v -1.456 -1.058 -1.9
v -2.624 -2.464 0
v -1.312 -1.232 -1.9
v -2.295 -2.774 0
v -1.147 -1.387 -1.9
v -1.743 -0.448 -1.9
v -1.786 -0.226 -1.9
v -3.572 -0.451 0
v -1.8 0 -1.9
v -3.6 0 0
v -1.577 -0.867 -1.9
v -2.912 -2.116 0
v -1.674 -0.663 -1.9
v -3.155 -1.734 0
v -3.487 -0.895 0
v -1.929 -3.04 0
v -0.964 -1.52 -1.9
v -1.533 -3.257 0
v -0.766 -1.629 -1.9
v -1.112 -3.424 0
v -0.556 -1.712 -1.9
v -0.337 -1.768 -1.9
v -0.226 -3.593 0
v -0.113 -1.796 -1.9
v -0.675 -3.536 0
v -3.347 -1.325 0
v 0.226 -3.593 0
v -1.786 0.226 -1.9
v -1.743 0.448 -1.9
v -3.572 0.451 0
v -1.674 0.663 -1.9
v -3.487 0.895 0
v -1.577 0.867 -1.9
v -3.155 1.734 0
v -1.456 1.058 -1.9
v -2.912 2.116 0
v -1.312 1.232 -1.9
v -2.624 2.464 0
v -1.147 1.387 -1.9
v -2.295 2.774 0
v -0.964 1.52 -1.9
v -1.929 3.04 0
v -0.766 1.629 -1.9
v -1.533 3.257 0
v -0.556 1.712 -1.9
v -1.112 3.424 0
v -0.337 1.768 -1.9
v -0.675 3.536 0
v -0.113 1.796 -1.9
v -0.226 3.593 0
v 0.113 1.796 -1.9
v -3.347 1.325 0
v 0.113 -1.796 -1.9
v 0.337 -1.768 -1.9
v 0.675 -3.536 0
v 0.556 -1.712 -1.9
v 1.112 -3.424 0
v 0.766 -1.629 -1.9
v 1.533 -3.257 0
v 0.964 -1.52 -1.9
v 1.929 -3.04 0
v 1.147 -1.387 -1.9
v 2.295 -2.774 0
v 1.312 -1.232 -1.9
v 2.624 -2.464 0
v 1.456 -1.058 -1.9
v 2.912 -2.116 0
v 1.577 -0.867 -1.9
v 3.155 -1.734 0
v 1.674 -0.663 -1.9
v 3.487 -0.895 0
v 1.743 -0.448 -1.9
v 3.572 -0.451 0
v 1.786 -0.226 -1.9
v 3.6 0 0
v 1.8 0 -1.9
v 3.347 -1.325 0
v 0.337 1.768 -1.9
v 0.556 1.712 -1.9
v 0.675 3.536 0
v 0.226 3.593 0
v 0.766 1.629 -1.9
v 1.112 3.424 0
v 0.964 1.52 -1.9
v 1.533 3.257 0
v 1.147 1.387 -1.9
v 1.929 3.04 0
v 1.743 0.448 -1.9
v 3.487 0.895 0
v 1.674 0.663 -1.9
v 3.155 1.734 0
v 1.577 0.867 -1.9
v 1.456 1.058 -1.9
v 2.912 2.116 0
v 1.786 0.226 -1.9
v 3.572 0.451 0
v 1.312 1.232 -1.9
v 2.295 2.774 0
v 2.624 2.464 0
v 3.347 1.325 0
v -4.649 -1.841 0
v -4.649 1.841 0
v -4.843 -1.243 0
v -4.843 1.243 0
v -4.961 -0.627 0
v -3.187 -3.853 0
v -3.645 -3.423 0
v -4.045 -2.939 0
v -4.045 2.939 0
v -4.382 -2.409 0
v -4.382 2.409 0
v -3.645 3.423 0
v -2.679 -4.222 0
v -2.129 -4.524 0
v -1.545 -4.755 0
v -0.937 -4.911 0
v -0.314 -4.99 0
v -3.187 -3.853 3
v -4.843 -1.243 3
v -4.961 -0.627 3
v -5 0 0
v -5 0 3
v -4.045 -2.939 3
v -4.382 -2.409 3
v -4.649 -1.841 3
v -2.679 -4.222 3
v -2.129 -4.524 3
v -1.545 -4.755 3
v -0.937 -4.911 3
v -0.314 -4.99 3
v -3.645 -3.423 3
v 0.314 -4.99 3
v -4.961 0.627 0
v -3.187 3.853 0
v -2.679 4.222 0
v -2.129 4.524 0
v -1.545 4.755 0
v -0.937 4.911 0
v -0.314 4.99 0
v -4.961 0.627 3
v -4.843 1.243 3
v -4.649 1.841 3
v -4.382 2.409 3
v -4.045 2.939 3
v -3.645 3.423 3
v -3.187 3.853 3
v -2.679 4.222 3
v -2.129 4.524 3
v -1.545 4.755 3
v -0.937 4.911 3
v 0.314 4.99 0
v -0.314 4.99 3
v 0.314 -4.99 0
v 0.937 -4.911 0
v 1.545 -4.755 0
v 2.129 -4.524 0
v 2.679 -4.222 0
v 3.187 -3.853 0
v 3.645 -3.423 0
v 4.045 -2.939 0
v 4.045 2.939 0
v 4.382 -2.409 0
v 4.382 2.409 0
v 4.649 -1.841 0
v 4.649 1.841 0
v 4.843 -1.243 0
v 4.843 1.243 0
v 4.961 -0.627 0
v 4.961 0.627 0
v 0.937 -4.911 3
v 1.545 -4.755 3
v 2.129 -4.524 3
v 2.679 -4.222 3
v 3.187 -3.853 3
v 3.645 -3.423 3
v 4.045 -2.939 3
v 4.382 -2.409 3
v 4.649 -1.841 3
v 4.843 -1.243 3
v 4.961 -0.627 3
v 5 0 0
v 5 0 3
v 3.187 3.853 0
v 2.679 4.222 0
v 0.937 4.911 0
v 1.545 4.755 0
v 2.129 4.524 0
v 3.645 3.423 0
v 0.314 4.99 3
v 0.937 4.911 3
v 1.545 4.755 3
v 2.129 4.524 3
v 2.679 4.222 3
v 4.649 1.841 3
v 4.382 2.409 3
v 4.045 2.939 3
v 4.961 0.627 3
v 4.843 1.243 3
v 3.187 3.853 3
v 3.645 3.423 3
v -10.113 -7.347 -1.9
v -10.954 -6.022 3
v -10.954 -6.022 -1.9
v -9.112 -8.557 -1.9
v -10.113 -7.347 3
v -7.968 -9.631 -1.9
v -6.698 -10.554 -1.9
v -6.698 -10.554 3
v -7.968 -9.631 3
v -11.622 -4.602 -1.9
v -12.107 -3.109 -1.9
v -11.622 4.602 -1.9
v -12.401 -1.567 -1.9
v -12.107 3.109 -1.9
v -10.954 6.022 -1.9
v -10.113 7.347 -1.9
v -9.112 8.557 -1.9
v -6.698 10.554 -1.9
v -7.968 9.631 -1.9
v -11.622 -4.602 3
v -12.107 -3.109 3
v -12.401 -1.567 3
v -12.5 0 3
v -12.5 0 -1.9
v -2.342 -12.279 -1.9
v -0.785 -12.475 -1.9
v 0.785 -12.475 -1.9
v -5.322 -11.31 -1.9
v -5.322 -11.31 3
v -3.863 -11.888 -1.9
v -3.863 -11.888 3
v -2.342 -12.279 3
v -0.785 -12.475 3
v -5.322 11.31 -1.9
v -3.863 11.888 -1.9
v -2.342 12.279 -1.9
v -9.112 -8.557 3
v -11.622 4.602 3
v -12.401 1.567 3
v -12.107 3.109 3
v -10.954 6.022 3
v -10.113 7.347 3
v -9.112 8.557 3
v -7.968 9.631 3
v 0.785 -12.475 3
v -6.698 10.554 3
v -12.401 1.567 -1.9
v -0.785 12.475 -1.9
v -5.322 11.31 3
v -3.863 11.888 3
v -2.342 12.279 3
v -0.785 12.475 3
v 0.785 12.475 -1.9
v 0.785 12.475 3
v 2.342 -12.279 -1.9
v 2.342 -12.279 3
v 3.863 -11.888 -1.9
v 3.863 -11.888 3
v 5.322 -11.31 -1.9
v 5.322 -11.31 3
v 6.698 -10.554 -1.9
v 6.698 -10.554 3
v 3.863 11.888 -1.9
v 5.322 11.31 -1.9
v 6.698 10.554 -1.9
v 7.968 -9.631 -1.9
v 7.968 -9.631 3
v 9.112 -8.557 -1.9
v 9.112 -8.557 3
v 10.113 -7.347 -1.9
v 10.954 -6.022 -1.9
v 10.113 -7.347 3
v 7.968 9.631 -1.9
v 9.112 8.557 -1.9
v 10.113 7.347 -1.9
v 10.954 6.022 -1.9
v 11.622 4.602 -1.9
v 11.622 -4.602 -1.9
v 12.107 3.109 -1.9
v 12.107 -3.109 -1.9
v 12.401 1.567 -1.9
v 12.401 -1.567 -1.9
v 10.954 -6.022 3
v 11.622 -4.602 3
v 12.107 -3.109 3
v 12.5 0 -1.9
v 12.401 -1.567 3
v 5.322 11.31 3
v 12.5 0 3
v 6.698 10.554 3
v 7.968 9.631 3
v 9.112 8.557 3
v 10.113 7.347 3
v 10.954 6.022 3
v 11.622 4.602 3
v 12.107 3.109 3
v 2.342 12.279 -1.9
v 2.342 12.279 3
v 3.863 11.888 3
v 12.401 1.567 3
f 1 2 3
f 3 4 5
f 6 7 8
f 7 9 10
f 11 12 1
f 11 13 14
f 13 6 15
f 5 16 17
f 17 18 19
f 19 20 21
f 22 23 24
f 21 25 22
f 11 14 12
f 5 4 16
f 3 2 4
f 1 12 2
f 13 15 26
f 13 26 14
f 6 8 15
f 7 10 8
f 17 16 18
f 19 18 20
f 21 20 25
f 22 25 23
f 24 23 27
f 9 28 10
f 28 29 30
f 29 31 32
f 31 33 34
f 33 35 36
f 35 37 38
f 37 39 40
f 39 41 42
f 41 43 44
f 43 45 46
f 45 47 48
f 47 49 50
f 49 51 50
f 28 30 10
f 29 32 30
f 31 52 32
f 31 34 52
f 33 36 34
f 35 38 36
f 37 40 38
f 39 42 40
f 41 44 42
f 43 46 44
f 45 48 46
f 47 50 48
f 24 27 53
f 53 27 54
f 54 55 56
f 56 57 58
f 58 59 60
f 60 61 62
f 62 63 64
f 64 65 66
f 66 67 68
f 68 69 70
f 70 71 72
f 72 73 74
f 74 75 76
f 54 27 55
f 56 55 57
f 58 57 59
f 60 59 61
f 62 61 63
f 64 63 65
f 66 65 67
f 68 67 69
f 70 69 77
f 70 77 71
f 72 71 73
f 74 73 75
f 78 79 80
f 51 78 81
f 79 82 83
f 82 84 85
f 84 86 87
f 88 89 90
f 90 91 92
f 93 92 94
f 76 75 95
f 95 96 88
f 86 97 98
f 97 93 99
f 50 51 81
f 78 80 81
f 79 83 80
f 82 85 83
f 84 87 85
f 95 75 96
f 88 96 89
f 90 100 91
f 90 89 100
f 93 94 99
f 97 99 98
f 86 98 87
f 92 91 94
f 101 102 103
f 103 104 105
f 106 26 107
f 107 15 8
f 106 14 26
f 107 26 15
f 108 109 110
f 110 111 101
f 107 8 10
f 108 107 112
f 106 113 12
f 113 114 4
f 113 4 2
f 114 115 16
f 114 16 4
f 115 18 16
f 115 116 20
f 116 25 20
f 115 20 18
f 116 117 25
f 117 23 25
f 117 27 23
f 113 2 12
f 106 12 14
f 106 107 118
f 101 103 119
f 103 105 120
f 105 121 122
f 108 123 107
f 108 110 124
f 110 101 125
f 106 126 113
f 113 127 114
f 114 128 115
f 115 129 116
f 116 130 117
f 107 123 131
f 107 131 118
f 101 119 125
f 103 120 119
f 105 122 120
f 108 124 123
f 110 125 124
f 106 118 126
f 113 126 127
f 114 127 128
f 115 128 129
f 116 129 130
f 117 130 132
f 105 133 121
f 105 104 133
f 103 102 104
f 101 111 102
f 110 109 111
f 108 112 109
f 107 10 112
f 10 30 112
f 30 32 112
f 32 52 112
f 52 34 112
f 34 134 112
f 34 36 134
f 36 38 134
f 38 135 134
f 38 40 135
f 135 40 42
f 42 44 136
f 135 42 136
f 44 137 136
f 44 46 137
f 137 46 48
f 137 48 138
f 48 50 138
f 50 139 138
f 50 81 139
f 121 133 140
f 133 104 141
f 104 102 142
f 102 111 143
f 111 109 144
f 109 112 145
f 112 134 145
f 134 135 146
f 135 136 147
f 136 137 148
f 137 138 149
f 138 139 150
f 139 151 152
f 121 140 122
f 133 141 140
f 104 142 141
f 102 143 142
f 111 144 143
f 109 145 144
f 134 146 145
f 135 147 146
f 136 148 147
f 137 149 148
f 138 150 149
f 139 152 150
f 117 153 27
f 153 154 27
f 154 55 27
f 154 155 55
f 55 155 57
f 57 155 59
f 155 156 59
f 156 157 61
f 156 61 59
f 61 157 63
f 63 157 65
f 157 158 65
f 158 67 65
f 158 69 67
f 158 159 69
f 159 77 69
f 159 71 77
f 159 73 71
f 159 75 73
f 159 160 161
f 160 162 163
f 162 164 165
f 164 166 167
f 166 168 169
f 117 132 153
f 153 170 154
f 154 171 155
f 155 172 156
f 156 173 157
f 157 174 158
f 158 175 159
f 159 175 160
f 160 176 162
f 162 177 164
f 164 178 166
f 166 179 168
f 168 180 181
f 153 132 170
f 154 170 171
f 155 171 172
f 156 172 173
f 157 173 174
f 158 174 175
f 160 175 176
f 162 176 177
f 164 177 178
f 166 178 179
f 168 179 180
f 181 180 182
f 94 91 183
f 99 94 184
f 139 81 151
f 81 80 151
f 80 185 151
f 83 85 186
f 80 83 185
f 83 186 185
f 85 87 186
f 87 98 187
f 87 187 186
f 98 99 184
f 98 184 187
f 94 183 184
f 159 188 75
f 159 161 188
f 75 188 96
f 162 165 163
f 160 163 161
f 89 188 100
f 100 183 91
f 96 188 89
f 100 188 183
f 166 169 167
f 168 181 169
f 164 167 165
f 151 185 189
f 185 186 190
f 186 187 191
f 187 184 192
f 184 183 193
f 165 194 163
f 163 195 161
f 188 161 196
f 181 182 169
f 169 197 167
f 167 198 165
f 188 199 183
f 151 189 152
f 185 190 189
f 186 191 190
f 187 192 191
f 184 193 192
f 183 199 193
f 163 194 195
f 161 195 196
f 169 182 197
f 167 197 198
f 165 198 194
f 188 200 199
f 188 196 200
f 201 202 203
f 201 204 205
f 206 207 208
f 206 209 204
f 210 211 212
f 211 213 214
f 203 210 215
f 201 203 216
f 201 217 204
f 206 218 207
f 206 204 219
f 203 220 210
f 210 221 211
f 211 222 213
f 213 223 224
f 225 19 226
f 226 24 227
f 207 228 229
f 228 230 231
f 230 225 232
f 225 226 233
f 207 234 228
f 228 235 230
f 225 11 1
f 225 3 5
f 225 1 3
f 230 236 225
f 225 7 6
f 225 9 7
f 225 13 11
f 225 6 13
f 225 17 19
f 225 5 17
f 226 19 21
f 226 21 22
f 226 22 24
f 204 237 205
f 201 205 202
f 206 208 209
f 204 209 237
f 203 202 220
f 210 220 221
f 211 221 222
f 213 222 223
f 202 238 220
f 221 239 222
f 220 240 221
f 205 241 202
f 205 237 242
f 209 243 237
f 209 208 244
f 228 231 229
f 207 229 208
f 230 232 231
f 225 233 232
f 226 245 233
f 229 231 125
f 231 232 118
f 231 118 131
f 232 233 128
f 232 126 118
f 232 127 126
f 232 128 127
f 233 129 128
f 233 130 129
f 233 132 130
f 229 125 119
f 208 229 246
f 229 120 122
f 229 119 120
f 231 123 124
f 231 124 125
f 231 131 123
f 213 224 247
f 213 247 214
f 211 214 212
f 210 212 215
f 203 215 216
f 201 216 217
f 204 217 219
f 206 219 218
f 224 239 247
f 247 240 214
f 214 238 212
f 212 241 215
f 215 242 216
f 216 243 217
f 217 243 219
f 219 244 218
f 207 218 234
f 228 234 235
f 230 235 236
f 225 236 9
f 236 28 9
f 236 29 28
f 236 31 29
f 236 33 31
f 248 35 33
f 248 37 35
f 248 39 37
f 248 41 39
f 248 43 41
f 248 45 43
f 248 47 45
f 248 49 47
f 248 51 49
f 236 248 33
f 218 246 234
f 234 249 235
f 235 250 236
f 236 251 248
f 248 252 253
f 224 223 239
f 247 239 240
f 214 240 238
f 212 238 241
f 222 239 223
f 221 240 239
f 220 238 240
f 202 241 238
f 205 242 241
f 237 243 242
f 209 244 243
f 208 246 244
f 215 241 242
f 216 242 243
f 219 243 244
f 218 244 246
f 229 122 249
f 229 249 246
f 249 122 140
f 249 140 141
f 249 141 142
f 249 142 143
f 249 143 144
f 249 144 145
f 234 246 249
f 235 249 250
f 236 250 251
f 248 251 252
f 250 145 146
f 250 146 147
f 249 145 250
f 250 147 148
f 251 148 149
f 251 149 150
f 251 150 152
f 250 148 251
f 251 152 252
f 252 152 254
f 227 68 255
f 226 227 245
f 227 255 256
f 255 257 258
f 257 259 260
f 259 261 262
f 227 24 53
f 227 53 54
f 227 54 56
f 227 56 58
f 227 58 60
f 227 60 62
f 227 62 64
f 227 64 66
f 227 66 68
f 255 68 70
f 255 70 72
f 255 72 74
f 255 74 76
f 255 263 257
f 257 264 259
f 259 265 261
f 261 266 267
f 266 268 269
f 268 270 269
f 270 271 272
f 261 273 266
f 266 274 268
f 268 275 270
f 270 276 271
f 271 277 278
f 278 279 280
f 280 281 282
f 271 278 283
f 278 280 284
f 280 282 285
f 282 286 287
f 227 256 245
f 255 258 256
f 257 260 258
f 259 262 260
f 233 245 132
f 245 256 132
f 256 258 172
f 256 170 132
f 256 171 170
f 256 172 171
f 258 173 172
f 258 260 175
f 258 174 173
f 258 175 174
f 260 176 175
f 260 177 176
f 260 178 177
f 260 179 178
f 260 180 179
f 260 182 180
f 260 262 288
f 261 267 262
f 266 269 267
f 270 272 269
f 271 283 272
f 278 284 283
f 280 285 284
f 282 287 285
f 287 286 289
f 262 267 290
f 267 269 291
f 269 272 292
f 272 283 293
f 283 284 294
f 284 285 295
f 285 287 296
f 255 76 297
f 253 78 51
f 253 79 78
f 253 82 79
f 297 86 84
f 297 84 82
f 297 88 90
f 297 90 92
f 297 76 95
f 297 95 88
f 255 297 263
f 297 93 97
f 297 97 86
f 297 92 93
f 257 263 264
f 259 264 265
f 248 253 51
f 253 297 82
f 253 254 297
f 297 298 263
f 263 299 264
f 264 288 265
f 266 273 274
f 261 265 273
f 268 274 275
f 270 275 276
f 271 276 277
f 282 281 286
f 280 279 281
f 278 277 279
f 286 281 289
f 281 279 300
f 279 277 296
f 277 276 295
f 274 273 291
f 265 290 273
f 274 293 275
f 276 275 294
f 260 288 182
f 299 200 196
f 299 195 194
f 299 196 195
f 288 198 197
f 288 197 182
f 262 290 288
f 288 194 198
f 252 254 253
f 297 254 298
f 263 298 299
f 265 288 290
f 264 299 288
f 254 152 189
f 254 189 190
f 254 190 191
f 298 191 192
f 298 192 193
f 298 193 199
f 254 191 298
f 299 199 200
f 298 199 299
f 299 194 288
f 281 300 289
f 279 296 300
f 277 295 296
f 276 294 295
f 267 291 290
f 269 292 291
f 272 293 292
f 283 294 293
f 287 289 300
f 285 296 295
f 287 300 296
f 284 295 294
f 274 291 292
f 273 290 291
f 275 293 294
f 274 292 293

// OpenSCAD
$fn = 50;

difference() {
	union() {
		translate(v = [0, 0, -1.9000000000000004]) {
			cylinder(h = 4.9, r = 12.5);
		}
	}
	union() {
		translate(v = [0, 0, 0]) {
			rotate(a = [0, 0, 0]) {
				difference() {
					union() {
						translate(v = [0, 0, -4.9]) {
							cylinder(h = 4.9, r = 1.5);
						}
						translate(v = [0, 0, -1.9]) {
							cylinder(h = 1.9, r1 = 1.8, r2 = 3.6);
						}
						translate(v = [0, 0, -4.9]) {
							cylinder(h = 4.9, r = 1.8);
						}
						translate(v = [0, 0, -4.9]) {
							cylinder(h = 4.9, r = 1.5);
						}
					}
					union();
				}
			}
		}
		#cylinder(h = 3, r = 5.0);
	}
}
